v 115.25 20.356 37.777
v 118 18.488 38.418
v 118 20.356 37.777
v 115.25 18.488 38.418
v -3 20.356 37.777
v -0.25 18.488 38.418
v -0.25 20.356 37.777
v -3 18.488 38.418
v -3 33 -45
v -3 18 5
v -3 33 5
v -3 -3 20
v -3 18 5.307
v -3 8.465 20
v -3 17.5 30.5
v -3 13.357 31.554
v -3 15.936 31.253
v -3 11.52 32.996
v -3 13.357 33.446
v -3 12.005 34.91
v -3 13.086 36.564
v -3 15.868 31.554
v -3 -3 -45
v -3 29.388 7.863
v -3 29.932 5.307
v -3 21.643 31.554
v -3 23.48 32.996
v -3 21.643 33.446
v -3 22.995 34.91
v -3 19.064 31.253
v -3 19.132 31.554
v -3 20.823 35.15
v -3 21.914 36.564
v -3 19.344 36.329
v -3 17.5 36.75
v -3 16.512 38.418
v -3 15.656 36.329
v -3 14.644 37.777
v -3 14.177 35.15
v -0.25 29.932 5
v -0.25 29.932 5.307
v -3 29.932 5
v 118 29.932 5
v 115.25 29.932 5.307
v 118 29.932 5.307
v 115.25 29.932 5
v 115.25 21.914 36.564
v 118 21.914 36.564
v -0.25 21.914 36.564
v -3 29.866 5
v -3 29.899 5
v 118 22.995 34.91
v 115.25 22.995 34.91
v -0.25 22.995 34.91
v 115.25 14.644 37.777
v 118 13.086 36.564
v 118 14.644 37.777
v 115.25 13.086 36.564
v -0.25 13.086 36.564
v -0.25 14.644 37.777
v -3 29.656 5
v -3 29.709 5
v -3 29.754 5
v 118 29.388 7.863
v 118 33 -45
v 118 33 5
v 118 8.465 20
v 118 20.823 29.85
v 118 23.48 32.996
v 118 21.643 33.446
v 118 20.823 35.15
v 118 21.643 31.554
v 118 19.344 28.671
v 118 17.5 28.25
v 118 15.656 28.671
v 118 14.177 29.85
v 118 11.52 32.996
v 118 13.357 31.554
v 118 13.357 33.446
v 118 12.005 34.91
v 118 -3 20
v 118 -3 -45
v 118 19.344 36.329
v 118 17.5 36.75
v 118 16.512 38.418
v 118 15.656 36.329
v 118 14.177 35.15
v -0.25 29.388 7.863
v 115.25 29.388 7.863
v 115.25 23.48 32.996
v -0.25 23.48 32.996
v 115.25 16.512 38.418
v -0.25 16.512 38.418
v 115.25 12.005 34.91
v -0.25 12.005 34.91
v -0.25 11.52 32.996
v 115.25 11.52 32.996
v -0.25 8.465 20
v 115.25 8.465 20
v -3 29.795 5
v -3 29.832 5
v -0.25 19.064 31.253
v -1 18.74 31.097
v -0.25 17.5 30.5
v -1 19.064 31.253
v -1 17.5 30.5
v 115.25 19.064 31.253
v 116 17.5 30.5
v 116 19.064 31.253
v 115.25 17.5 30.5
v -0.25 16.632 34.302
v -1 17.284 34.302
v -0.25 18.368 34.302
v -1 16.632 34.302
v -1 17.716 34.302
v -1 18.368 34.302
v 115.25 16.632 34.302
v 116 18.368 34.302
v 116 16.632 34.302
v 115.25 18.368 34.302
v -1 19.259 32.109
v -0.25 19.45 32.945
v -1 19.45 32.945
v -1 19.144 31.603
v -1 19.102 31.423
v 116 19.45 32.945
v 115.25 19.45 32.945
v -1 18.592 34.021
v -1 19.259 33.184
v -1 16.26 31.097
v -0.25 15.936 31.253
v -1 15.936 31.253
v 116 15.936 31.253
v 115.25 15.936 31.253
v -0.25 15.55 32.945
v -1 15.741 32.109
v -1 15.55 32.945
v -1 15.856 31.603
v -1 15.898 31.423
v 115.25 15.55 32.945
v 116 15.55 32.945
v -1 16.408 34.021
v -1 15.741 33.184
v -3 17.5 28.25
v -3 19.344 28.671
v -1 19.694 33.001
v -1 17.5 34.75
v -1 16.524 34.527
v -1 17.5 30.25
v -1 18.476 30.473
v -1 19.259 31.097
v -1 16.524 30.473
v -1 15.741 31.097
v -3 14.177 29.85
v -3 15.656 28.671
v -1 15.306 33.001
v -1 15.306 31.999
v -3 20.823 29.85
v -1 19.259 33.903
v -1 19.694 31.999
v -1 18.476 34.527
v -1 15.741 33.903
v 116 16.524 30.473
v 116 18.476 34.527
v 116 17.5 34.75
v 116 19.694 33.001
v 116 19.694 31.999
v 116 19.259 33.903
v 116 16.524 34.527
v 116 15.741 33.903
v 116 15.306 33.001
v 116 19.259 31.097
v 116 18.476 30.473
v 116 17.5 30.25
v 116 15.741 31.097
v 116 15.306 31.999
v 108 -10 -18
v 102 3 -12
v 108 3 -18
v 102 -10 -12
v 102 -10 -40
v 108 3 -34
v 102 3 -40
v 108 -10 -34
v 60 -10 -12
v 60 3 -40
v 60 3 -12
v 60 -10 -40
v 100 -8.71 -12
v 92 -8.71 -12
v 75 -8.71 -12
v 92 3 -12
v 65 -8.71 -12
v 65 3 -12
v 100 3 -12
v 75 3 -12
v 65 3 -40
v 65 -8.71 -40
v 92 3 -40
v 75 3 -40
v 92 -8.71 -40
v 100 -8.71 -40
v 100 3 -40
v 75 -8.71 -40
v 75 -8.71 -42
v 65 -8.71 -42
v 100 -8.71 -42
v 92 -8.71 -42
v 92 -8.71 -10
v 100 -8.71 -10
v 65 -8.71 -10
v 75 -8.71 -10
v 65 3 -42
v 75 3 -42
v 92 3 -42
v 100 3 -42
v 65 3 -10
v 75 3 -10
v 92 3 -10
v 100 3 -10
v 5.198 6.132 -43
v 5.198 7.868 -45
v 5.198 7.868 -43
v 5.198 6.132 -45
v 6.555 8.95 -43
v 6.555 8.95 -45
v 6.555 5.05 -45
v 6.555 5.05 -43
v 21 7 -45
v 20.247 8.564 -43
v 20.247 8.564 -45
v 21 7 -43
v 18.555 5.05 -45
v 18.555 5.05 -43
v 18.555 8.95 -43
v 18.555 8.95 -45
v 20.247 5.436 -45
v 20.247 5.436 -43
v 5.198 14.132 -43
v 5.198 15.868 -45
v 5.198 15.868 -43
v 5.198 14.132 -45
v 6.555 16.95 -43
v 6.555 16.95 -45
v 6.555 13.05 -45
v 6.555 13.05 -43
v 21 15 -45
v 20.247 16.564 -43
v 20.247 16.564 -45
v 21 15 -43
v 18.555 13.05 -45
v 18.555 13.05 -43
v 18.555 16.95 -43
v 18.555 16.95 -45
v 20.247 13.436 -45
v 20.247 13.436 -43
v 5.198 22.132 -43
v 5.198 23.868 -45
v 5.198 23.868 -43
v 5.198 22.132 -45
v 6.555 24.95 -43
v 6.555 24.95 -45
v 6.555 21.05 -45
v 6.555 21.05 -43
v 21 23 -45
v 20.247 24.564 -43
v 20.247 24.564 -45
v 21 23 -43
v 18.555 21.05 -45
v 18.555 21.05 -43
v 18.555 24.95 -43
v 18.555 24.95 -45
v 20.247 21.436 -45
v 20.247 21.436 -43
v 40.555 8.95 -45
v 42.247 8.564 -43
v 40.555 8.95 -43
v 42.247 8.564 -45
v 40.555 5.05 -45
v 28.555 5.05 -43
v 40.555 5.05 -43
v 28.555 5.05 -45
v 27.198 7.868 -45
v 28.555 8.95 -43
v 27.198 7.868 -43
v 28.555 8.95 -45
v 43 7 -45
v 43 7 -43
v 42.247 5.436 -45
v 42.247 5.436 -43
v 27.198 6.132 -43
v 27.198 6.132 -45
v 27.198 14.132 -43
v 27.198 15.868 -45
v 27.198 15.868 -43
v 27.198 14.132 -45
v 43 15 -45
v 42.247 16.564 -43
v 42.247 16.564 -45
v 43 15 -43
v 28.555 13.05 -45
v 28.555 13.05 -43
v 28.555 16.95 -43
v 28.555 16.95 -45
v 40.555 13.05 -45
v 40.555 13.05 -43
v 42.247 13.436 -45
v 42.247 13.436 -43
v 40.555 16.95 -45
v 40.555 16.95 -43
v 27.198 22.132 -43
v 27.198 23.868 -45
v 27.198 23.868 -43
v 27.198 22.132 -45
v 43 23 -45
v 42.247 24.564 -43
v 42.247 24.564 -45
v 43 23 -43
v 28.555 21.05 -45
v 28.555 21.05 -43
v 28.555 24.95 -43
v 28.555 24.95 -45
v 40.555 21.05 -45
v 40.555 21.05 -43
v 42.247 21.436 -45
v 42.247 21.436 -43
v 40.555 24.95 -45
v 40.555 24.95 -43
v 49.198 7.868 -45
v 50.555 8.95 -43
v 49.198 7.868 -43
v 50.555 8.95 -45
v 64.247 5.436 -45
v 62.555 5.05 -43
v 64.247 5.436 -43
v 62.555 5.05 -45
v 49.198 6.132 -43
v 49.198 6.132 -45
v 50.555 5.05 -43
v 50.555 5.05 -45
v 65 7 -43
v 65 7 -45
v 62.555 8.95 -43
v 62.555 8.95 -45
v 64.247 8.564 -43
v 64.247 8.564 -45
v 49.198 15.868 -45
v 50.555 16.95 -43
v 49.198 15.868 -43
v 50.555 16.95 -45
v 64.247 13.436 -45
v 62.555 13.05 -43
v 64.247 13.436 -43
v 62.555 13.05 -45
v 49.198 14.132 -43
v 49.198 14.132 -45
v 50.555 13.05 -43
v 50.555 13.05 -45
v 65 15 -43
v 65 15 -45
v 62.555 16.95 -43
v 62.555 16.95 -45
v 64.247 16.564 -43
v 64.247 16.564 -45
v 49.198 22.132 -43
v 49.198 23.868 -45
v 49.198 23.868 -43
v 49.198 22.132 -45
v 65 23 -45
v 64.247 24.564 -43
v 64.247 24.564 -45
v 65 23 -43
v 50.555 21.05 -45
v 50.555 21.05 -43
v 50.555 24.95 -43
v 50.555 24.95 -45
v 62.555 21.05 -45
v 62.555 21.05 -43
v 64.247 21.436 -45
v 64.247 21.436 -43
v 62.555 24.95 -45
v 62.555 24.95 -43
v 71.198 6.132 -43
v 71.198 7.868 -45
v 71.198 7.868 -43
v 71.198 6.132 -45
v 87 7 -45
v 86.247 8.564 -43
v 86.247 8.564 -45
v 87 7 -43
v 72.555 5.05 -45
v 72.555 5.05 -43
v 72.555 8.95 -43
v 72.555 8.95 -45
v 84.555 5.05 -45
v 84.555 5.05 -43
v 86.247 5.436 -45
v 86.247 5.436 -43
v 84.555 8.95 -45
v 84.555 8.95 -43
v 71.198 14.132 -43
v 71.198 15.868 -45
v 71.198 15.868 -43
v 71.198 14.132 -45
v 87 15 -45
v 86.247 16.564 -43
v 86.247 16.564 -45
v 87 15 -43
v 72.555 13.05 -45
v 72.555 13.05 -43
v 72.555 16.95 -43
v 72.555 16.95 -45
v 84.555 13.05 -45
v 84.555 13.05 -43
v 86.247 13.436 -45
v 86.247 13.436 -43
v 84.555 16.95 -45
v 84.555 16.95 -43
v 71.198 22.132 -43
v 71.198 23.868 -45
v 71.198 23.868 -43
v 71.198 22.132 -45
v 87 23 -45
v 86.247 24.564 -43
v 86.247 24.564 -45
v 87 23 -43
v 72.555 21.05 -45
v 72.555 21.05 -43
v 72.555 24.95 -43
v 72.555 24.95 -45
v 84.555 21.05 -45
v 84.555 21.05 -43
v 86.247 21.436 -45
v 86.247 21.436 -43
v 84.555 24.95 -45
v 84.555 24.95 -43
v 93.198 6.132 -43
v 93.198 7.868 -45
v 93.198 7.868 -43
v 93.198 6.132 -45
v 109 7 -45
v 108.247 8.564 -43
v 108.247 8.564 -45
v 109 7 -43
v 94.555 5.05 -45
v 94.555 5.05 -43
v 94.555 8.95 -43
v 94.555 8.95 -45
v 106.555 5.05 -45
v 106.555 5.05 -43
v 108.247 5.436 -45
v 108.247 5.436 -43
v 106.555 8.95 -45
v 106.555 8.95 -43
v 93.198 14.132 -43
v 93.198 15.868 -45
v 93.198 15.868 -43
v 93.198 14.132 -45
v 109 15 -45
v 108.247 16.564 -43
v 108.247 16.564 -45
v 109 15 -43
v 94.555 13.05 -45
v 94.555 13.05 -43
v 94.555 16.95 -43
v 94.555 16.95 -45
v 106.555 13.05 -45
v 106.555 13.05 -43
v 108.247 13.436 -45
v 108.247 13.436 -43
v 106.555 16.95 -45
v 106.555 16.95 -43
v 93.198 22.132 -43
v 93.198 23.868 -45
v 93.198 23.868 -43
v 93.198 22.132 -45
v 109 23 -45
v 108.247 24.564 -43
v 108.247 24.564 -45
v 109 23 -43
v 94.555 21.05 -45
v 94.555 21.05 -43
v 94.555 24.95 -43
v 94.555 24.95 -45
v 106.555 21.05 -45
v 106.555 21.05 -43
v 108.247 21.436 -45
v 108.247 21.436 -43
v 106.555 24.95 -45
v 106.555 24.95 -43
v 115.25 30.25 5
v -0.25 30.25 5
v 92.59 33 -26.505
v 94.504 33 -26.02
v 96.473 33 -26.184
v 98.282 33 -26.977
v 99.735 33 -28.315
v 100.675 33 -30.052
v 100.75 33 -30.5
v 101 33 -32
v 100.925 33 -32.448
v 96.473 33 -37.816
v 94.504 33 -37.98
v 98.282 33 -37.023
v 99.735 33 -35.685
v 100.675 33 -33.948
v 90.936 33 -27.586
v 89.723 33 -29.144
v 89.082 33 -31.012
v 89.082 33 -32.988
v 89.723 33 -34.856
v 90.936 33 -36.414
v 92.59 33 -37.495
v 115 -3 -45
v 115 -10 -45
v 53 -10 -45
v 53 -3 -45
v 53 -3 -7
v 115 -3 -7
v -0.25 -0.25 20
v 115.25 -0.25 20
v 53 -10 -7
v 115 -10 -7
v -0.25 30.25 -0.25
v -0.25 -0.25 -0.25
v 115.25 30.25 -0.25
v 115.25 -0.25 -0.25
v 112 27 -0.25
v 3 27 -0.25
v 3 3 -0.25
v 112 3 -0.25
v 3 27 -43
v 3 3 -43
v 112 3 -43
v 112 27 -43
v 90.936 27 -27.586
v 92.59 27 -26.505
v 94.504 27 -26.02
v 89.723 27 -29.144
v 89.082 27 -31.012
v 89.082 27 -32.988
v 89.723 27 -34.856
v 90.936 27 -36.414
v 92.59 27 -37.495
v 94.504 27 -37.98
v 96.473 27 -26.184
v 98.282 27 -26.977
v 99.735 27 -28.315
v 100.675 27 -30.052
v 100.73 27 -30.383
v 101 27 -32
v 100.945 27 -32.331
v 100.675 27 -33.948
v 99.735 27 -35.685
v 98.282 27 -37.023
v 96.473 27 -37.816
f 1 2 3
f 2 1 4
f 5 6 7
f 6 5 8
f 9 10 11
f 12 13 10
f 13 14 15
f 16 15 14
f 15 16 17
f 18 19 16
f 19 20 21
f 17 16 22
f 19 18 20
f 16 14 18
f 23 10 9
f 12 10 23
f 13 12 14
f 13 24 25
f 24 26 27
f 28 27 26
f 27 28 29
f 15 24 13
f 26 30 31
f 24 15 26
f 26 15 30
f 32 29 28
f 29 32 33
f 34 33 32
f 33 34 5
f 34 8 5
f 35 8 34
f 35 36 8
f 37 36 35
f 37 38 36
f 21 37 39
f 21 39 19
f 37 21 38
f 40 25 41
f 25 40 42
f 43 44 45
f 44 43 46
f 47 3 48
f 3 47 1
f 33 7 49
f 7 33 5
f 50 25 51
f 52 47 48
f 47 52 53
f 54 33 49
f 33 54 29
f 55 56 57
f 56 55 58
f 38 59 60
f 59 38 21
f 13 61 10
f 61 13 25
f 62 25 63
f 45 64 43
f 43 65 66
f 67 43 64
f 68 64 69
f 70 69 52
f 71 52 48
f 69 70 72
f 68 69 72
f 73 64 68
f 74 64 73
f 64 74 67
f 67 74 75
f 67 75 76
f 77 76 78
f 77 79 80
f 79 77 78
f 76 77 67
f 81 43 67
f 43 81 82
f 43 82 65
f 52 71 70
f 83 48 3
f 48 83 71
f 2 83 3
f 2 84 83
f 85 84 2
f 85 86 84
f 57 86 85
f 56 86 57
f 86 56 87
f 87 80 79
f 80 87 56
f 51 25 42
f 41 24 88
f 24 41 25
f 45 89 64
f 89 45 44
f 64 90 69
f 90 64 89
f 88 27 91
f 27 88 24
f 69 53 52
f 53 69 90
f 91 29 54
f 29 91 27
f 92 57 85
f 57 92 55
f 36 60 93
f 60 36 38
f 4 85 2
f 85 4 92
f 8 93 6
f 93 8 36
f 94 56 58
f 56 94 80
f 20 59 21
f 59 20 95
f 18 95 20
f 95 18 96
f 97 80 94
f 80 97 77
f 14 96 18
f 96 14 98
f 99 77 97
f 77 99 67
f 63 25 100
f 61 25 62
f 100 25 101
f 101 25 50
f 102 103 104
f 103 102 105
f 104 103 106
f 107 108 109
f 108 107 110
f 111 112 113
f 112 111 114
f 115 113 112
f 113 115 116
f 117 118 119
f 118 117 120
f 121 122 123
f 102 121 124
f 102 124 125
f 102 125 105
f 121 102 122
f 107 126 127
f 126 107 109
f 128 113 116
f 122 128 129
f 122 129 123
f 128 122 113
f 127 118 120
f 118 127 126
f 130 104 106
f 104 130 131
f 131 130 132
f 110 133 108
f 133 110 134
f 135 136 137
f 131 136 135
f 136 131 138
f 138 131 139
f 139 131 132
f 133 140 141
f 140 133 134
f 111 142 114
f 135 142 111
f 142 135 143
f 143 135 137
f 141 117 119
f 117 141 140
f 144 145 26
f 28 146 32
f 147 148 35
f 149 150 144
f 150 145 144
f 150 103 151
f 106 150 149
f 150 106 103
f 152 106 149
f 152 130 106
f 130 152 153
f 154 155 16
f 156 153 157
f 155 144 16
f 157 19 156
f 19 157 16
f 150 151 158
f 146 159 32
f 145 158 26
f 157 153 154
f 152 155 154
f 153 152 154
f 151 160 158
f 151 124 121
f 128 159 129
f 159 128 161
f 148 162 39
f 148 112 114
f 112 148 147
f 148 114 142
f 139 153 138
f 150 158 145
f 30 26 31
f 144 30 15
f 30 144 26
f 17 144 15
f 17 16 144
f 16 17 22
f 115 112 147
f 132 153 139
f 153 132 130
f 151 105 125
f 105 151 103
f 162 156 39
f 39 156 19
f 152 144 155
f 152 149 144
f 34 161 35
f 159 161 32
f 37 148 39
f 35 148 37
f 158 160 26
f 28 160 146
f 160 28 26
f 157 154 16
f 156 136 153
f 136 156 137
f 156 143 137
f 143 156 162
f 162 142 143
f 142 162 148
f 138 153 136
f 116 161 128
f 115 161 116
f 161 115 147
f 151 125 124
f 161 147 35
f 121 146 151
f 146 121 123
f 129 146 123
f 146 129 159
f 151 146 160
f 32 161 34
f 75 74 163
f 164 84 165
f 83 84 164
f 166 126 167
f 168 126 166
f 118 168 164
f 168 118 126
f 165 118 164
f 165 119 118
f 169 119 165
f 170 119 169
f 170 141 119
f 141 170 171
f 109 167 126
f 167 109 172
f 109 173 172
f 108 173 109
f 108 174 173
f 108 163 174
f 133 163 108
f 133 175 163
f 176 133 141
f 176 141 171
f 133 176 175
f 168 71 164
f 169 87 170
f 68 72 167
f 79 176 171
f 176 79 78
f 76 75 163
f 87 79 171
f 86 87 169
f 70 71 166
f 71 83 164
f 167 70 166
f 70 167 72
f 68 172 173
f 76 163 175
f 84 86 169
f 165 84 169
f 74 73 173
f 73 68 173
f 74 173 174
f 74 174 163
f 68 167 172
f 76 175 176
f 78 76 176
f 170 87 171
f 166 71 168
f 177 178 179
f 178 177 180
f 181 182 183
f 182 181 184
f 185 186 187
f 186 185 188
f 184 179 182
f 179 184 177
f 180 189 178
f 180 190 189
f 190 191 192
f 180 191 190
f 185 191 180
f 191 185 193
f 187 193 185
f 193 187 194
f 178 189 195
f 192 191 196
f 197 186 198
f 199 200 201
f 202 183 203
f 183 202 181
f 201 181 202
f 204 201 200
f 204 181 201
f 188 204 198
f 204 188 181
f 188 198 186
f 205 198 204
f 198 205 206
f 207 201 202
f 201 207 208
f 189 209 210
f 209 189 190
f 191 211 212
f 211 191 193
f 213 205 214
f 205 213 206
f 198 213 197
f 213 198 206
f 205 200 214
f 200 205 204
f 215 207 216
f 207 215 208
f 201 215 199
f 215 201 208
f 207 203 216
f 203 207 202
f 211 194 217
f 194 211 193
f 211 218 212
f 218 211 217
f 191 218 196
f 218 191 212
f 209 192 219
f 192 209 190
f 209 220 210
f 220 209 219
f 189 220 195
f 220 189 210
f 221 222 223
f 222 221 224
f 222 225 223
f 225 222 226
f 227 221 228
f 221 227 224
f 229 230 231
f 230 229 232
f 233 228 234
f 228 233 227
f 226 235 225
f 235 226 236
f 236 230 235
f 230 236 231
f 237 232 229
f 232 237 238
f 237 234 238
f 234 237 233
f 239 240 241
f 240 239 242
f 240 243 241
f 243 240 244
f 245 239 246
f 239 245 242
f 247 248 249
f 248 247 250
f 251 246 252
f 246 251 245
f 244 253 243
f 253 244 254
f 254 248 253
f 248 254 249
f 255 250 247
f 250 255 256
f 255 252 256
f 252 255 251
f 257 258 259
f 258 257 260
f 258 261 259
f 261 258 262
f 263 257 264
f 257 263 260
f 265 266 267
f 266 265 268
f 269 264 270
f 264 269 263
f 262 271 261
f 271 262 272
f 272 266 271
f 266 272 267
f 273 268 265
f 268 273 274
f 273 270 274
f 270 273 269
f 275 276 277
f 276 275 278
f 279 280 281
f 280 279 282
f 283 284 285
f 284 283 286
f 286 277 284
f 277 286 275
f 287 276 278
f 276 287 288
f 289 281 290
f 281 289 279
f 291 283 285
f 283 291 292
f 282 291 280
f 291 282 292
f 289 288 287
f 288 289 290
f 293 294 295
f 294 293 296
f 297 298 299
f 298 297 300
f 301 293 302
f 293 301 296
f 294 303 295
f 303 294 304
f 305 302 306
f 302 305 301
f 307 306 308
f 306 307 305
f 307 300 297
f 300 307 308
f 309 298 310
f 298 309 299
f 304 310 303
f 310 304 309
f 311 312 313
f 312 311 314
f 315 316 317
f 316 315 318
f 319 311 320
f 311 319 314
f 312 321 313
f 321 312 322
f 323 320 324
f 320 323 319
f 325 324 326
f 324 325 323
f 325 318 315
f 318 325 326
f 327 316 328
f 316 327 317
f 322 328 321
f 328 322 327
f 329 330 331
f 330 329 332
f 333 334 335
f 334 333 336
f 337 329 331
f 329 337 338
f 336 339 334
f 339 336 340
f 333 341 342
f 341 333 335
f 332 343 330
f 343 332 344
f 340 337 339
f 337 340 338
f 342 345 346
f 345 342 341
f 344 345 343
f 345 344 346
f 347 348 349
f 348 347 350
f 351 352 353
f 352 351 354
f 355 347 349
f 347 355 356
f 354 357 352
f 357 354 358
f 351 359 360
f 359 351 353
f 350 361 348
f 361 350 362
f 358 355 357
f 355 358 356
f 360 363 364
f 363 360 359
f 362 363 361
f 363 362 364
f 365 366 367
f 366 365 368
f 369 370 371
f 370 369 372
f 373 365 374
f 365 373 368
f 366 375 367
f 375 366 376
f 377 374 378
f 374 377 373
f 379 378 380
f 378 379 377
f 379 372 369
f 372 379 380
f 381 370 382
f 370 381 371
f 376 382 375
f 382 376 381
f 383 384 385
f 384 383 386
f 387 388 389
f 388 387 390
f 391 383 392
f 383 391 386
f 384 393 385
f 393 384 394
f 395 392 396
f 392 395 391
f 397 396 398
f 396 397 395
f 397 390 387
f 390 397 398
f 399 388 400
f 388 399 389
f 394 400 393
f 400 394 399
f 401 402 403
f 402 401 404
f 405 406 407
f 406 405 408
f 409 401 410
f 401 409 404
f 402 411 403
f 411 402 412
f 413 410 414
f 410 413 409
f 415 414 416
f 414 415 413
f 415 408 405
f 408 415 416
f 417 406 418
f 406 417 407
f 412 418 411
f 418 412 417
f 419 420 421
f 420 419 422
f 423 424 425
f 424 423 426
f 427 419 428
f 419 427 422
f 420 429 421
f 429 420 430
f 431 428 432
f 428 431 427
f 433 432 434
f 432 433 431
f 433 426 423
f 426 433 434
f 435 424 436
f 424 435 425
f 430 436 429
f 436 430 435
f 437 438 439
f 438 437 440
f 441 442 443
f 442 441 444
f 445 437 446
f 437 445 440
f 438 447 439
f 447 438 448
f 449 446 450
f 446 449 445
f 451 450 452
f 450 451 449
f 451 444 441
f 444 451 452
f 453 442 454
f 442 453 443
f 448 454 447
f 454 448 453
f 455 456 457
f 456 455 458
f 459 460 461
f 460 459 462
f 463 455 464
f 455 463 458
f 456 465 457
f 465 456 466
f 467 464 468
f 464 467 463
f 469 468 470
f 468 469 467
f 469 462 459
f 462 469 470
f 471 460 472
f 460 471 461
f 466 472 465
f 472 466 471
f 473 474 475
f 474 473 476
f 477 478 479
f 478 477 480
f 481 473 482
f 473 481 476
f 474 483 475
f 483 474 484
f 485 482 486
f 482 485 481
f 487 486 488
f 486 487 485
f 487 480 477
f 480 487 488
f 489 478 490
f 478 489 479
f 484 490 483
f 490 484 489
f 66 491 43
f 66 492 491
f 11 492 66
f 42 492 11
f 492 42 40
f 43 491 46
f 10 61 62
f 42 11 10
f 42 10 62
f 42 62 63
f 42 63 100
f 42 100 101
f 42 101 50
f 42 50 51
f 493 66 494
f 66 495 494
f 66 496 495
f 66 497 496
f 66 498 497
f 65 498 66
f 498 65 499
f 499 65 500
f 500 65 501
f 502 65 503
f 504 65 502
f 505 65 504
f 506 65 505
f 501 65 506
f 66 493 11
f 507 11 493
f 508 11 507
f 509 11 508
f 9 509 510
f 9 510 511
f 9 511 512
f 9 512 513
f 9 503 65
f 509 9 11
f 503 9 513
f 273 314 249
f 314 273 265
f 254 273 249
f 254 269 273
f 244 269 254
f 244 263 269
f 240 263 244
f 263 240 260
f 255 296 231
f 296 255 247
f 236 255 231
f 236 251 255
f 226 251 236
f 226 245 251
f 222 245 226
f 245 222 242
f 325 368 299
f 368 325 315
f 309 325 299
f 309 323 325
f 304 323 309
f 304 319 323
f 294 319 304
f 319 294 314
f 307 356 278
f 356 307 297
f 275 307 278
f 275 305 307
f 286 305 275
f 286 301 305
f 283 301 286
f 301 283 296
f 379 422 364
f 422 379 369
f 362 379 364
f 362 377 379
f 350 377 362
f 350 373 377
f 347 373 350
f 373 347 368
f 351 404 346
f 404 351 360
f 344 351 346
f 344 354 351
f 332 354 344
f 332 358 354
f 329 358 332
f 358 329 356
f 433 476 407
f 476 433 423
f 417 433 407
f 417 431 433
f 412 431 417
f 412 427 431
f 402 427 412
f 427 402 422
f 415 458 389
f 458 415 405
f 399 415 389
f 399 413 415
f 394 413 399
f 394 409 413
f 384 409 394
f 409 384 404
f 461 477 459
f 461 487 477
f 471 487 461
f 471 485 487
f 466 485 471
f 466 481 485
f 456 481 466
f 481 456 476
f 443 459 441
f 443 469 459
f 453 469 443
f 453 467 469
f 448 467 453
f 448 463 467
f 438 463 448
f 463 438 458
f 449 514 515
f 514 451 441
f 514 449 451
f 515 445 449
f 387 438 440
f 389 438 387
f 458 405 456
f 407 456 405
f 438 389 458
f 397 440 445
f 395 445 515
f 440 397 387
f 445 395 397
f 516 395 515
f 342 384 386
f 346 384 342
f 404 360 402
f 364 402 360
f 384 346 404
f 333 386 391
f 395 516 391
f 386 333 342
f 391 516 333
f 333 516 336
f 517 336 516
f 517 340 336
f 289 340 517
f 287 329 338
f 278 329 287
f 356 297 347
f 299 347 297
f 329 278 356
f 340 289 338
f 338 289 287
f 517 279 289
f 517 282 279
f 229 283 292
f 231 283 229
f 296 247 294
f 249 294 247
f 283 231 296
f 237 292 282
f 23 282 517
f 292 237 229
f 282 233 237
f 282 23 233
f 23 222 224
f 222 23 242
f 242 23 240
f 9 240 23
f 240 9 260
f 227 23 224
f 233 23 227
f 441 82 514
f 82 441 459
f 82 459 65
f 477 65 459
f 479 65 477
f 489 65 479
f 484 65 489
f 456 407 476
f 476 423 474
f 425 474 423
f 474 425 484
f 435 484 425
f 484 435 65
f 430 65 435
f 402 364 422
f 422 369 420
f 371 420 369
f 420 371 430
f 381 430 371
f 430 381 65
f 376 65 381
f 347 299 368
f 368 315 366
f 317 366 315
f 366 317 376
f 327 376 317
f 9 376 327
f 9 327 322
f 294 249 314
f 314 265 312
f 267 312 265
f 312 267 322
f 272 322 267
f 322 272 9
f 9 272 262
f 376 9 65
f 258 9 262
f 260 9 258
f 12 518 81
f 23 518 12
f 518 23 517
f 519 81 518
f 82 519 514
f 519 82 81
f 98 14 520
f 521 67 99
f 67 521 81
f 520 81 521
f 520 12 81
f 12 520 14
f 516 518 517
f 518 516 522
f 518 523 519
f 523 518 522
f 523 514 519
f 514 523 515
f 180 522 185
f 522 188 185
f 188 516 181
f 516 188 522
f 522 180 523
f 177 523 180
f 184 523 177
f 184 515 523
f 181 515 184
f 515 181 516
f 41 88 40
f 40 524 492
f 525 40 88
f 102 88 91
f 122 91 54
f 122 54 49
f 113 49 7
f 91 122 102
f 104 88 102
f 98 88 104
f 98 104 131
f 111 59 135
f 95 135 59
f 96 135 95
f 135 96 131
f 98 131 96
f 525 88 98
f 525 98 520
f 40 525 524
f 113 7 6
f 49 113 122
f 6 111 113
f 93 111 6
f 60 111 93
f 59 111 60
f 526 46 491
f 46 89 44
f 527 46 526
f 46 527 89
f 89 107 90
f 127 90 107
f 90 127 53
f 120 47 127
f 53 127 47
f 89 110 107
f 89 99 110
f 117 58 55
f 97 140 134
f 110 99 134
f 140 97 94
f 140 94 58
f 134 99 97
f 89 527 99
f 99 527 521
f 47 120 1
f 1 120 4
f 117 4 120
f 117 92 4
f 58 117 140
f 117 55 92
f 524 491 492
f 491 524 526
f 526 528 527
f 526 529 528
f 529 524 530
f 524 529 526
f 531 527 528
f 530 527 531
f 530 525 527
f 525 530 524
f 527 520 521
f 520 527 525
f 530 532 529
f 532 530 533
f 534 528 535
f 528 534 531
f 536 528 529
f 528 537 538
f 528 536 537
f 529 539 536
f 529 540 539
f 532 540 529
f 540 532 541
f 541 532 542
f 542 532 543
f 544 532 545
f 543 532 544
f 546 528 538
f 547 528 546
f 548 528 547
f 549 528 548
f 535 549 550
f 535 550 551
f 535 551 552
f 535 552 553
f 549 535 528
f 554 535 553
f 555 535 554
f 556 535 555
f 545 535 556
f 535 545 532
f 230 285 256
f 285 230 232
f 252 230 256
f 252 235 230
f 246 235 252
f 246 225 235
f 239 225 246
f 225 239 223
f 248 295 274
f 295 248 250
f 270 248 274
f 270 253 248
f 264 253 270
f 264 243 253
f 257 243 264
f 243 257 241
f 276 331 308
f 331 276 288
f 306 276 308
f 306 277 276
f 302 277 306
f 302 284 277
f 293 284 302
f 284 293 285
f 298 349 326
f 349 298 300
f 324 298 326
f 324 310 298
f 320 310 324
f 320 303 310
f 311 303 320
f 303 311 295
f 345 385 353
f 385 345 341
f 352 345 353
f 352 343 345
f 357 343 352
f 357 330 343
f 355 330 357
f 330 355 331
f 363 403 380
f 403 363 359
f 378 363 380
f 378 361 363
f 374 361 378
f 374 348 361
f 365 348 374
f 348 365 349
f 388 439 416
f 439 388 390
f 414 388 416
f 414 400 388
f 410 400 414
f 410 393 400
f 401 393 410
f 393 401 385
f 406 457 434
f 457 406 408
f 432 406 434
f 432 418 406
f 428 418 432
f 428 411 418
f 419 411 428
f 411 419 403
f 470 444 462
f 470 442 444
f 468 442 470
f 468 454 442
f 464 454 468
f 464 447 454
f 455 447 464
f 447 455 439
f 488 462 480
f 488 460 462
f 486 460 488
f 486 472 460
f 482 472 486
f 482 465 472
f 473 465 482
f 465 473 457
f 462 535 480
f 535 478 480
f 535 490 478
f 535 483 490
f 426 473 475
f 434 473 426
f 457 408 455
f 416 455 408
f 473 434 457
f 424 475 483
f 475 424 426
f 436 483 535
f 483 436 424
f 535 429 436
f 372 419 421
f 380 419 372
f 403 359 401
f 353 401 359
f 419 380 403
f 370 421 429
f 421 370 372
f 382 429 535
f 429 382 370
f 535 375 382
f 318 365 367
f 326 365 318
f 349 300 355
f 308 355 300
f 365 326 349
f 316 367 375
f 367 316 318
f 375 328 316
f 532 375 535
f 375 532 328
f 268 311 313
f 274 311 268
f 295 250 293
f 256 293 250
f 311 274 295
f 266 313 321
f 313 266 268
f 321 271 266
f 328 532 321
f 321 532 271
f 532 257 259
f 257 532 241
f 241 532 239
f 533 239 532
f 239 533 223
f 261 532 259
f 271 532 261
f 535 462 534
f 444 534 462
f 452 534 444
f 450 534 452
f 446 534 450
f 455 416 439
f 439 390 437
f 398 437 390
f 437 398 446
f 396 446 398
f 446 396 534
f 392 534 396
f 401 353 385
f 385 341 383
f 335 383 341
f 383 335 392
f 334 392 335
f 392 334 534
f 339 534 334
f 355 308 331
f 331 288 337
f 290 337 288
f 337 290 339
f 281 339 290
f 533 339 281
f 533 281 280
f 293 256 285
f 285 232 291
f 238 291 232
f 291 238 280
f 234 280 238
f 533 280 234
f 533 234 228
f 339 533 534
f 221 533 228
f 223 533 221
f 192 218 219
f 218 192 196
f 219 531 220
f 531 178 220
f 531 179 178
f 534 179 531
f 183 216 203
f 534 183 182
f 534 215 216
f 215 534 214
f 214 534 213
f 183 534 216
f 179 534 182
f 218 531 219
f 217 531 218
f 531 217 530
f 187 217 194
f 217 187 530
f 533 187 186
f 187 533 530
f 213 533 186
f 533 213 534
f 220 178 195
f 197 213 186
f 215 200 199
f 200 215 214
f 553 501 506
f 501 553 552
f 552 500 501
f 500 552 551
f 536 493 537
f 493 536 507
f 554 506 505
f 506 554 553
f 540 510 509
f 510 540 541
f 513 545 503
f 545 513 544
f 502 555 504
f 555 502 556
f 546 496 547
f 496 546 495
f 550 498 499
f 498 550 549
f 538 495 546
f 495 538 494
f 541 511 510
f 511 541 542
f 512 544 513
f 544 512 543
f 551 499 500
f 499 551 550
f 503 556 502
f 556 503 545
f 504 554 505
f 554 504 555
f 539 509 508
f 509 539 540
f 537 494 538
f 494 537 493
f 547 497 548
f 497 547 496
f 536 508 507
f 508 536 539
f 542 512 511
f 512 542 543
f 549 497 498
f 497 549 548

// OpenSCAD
nudge = 0.01;

cover();
//lrs350();

//bottom_holes();



module cover() {

    difference() {
        union() {
            translate([-3,-3,-45]) cube([115+6,30+6,50]);
            translate([-3,-3,-45]) cube([115+6,15+6,55+10]);
            translate([-3+56,-3-7,-45]) cube([62,30+6,38]);
            screw_extendys();
            
        }
        
        // psu
        translate([0-.25,0-.25,0-.25]) cube([115+.5,30+.5,50]);
        
        // inside
        translate([3,3,-43]) cube([115-6,30-6,50]);
        
//        translate([4,-6,-34]) cube([115-8,40,34+nudge]);
        
        translate([60,-10-nudge,-12]) rotate([-90,0,0]) iec_cutout();
        bottom_holes();
        
        
        
        
        translate([95,10,-32]) rotate([-90,0,0]) cylinder(d=12,h=100);
//        translate([20,10,-32]) rotate([-90,0,0]) cylinder(d=12,h=100);
        
        
        
    }
    
    


}
module lrs350() {
    
    color("silver")
    difference() {
        cube([115,30,235]);
        translate([-nudge,30-12.5,32.5]) rotate([0,90,0]) cylinder(d=4,h=115+(2*nudge));
    }
}

module screw_extendys() {
    
    difference() {
       hull() {
            translate([-3,30-12.5,32.5]) rotate([0,90,0]) cylinder(d=12,h=115+6);
            translate([-3,30-12.5,4]) rotate([0,90,0]) cylinder(d=25,h=115+6);
       }
        translate([-10,30-12.5,32.5]) rotate([0,90,0]) cylinder(d=4,h=150);

        translate([-3,30-12.5,32.5]) rotate([0,90,0]) cylinder(d1=8.5,d2=4.5,h=2);
        translate([115+3,30-12.5,32.5]) rotate([0,-90,0]) cylinder(d1=8.5,d2=4.5,h=2);
    }    
}




module iec_cutout() {
    
    h = 15;
    
    union() {
        linear_extrude(height=h)
            polygon([[0,0],[42,0],[48,6],[48,22],[42,28],[0,28]]);
        translate([0,0,1.3])
        linear_extrude(height=h)
            union() {
                translate([5,-2]) square([10,2]);
                translate([5,28]) square([10,2]);
                translate([32,-2]) square([8,2]);
                translate([32,28]) square([8,2]);
            }
        
    }
}

module bottom_holes() {
    
    translate([7,7,-50])
        for (x = [0:22:90]) {
            for (y=[0:8:20]) {
            hull() {
                translate([x,y,0]) cylinder(r=2,h=100);
                translate([x+12,y,0]) cylinder(r=2,h=100);
            }
        }
    }
    
    
}
